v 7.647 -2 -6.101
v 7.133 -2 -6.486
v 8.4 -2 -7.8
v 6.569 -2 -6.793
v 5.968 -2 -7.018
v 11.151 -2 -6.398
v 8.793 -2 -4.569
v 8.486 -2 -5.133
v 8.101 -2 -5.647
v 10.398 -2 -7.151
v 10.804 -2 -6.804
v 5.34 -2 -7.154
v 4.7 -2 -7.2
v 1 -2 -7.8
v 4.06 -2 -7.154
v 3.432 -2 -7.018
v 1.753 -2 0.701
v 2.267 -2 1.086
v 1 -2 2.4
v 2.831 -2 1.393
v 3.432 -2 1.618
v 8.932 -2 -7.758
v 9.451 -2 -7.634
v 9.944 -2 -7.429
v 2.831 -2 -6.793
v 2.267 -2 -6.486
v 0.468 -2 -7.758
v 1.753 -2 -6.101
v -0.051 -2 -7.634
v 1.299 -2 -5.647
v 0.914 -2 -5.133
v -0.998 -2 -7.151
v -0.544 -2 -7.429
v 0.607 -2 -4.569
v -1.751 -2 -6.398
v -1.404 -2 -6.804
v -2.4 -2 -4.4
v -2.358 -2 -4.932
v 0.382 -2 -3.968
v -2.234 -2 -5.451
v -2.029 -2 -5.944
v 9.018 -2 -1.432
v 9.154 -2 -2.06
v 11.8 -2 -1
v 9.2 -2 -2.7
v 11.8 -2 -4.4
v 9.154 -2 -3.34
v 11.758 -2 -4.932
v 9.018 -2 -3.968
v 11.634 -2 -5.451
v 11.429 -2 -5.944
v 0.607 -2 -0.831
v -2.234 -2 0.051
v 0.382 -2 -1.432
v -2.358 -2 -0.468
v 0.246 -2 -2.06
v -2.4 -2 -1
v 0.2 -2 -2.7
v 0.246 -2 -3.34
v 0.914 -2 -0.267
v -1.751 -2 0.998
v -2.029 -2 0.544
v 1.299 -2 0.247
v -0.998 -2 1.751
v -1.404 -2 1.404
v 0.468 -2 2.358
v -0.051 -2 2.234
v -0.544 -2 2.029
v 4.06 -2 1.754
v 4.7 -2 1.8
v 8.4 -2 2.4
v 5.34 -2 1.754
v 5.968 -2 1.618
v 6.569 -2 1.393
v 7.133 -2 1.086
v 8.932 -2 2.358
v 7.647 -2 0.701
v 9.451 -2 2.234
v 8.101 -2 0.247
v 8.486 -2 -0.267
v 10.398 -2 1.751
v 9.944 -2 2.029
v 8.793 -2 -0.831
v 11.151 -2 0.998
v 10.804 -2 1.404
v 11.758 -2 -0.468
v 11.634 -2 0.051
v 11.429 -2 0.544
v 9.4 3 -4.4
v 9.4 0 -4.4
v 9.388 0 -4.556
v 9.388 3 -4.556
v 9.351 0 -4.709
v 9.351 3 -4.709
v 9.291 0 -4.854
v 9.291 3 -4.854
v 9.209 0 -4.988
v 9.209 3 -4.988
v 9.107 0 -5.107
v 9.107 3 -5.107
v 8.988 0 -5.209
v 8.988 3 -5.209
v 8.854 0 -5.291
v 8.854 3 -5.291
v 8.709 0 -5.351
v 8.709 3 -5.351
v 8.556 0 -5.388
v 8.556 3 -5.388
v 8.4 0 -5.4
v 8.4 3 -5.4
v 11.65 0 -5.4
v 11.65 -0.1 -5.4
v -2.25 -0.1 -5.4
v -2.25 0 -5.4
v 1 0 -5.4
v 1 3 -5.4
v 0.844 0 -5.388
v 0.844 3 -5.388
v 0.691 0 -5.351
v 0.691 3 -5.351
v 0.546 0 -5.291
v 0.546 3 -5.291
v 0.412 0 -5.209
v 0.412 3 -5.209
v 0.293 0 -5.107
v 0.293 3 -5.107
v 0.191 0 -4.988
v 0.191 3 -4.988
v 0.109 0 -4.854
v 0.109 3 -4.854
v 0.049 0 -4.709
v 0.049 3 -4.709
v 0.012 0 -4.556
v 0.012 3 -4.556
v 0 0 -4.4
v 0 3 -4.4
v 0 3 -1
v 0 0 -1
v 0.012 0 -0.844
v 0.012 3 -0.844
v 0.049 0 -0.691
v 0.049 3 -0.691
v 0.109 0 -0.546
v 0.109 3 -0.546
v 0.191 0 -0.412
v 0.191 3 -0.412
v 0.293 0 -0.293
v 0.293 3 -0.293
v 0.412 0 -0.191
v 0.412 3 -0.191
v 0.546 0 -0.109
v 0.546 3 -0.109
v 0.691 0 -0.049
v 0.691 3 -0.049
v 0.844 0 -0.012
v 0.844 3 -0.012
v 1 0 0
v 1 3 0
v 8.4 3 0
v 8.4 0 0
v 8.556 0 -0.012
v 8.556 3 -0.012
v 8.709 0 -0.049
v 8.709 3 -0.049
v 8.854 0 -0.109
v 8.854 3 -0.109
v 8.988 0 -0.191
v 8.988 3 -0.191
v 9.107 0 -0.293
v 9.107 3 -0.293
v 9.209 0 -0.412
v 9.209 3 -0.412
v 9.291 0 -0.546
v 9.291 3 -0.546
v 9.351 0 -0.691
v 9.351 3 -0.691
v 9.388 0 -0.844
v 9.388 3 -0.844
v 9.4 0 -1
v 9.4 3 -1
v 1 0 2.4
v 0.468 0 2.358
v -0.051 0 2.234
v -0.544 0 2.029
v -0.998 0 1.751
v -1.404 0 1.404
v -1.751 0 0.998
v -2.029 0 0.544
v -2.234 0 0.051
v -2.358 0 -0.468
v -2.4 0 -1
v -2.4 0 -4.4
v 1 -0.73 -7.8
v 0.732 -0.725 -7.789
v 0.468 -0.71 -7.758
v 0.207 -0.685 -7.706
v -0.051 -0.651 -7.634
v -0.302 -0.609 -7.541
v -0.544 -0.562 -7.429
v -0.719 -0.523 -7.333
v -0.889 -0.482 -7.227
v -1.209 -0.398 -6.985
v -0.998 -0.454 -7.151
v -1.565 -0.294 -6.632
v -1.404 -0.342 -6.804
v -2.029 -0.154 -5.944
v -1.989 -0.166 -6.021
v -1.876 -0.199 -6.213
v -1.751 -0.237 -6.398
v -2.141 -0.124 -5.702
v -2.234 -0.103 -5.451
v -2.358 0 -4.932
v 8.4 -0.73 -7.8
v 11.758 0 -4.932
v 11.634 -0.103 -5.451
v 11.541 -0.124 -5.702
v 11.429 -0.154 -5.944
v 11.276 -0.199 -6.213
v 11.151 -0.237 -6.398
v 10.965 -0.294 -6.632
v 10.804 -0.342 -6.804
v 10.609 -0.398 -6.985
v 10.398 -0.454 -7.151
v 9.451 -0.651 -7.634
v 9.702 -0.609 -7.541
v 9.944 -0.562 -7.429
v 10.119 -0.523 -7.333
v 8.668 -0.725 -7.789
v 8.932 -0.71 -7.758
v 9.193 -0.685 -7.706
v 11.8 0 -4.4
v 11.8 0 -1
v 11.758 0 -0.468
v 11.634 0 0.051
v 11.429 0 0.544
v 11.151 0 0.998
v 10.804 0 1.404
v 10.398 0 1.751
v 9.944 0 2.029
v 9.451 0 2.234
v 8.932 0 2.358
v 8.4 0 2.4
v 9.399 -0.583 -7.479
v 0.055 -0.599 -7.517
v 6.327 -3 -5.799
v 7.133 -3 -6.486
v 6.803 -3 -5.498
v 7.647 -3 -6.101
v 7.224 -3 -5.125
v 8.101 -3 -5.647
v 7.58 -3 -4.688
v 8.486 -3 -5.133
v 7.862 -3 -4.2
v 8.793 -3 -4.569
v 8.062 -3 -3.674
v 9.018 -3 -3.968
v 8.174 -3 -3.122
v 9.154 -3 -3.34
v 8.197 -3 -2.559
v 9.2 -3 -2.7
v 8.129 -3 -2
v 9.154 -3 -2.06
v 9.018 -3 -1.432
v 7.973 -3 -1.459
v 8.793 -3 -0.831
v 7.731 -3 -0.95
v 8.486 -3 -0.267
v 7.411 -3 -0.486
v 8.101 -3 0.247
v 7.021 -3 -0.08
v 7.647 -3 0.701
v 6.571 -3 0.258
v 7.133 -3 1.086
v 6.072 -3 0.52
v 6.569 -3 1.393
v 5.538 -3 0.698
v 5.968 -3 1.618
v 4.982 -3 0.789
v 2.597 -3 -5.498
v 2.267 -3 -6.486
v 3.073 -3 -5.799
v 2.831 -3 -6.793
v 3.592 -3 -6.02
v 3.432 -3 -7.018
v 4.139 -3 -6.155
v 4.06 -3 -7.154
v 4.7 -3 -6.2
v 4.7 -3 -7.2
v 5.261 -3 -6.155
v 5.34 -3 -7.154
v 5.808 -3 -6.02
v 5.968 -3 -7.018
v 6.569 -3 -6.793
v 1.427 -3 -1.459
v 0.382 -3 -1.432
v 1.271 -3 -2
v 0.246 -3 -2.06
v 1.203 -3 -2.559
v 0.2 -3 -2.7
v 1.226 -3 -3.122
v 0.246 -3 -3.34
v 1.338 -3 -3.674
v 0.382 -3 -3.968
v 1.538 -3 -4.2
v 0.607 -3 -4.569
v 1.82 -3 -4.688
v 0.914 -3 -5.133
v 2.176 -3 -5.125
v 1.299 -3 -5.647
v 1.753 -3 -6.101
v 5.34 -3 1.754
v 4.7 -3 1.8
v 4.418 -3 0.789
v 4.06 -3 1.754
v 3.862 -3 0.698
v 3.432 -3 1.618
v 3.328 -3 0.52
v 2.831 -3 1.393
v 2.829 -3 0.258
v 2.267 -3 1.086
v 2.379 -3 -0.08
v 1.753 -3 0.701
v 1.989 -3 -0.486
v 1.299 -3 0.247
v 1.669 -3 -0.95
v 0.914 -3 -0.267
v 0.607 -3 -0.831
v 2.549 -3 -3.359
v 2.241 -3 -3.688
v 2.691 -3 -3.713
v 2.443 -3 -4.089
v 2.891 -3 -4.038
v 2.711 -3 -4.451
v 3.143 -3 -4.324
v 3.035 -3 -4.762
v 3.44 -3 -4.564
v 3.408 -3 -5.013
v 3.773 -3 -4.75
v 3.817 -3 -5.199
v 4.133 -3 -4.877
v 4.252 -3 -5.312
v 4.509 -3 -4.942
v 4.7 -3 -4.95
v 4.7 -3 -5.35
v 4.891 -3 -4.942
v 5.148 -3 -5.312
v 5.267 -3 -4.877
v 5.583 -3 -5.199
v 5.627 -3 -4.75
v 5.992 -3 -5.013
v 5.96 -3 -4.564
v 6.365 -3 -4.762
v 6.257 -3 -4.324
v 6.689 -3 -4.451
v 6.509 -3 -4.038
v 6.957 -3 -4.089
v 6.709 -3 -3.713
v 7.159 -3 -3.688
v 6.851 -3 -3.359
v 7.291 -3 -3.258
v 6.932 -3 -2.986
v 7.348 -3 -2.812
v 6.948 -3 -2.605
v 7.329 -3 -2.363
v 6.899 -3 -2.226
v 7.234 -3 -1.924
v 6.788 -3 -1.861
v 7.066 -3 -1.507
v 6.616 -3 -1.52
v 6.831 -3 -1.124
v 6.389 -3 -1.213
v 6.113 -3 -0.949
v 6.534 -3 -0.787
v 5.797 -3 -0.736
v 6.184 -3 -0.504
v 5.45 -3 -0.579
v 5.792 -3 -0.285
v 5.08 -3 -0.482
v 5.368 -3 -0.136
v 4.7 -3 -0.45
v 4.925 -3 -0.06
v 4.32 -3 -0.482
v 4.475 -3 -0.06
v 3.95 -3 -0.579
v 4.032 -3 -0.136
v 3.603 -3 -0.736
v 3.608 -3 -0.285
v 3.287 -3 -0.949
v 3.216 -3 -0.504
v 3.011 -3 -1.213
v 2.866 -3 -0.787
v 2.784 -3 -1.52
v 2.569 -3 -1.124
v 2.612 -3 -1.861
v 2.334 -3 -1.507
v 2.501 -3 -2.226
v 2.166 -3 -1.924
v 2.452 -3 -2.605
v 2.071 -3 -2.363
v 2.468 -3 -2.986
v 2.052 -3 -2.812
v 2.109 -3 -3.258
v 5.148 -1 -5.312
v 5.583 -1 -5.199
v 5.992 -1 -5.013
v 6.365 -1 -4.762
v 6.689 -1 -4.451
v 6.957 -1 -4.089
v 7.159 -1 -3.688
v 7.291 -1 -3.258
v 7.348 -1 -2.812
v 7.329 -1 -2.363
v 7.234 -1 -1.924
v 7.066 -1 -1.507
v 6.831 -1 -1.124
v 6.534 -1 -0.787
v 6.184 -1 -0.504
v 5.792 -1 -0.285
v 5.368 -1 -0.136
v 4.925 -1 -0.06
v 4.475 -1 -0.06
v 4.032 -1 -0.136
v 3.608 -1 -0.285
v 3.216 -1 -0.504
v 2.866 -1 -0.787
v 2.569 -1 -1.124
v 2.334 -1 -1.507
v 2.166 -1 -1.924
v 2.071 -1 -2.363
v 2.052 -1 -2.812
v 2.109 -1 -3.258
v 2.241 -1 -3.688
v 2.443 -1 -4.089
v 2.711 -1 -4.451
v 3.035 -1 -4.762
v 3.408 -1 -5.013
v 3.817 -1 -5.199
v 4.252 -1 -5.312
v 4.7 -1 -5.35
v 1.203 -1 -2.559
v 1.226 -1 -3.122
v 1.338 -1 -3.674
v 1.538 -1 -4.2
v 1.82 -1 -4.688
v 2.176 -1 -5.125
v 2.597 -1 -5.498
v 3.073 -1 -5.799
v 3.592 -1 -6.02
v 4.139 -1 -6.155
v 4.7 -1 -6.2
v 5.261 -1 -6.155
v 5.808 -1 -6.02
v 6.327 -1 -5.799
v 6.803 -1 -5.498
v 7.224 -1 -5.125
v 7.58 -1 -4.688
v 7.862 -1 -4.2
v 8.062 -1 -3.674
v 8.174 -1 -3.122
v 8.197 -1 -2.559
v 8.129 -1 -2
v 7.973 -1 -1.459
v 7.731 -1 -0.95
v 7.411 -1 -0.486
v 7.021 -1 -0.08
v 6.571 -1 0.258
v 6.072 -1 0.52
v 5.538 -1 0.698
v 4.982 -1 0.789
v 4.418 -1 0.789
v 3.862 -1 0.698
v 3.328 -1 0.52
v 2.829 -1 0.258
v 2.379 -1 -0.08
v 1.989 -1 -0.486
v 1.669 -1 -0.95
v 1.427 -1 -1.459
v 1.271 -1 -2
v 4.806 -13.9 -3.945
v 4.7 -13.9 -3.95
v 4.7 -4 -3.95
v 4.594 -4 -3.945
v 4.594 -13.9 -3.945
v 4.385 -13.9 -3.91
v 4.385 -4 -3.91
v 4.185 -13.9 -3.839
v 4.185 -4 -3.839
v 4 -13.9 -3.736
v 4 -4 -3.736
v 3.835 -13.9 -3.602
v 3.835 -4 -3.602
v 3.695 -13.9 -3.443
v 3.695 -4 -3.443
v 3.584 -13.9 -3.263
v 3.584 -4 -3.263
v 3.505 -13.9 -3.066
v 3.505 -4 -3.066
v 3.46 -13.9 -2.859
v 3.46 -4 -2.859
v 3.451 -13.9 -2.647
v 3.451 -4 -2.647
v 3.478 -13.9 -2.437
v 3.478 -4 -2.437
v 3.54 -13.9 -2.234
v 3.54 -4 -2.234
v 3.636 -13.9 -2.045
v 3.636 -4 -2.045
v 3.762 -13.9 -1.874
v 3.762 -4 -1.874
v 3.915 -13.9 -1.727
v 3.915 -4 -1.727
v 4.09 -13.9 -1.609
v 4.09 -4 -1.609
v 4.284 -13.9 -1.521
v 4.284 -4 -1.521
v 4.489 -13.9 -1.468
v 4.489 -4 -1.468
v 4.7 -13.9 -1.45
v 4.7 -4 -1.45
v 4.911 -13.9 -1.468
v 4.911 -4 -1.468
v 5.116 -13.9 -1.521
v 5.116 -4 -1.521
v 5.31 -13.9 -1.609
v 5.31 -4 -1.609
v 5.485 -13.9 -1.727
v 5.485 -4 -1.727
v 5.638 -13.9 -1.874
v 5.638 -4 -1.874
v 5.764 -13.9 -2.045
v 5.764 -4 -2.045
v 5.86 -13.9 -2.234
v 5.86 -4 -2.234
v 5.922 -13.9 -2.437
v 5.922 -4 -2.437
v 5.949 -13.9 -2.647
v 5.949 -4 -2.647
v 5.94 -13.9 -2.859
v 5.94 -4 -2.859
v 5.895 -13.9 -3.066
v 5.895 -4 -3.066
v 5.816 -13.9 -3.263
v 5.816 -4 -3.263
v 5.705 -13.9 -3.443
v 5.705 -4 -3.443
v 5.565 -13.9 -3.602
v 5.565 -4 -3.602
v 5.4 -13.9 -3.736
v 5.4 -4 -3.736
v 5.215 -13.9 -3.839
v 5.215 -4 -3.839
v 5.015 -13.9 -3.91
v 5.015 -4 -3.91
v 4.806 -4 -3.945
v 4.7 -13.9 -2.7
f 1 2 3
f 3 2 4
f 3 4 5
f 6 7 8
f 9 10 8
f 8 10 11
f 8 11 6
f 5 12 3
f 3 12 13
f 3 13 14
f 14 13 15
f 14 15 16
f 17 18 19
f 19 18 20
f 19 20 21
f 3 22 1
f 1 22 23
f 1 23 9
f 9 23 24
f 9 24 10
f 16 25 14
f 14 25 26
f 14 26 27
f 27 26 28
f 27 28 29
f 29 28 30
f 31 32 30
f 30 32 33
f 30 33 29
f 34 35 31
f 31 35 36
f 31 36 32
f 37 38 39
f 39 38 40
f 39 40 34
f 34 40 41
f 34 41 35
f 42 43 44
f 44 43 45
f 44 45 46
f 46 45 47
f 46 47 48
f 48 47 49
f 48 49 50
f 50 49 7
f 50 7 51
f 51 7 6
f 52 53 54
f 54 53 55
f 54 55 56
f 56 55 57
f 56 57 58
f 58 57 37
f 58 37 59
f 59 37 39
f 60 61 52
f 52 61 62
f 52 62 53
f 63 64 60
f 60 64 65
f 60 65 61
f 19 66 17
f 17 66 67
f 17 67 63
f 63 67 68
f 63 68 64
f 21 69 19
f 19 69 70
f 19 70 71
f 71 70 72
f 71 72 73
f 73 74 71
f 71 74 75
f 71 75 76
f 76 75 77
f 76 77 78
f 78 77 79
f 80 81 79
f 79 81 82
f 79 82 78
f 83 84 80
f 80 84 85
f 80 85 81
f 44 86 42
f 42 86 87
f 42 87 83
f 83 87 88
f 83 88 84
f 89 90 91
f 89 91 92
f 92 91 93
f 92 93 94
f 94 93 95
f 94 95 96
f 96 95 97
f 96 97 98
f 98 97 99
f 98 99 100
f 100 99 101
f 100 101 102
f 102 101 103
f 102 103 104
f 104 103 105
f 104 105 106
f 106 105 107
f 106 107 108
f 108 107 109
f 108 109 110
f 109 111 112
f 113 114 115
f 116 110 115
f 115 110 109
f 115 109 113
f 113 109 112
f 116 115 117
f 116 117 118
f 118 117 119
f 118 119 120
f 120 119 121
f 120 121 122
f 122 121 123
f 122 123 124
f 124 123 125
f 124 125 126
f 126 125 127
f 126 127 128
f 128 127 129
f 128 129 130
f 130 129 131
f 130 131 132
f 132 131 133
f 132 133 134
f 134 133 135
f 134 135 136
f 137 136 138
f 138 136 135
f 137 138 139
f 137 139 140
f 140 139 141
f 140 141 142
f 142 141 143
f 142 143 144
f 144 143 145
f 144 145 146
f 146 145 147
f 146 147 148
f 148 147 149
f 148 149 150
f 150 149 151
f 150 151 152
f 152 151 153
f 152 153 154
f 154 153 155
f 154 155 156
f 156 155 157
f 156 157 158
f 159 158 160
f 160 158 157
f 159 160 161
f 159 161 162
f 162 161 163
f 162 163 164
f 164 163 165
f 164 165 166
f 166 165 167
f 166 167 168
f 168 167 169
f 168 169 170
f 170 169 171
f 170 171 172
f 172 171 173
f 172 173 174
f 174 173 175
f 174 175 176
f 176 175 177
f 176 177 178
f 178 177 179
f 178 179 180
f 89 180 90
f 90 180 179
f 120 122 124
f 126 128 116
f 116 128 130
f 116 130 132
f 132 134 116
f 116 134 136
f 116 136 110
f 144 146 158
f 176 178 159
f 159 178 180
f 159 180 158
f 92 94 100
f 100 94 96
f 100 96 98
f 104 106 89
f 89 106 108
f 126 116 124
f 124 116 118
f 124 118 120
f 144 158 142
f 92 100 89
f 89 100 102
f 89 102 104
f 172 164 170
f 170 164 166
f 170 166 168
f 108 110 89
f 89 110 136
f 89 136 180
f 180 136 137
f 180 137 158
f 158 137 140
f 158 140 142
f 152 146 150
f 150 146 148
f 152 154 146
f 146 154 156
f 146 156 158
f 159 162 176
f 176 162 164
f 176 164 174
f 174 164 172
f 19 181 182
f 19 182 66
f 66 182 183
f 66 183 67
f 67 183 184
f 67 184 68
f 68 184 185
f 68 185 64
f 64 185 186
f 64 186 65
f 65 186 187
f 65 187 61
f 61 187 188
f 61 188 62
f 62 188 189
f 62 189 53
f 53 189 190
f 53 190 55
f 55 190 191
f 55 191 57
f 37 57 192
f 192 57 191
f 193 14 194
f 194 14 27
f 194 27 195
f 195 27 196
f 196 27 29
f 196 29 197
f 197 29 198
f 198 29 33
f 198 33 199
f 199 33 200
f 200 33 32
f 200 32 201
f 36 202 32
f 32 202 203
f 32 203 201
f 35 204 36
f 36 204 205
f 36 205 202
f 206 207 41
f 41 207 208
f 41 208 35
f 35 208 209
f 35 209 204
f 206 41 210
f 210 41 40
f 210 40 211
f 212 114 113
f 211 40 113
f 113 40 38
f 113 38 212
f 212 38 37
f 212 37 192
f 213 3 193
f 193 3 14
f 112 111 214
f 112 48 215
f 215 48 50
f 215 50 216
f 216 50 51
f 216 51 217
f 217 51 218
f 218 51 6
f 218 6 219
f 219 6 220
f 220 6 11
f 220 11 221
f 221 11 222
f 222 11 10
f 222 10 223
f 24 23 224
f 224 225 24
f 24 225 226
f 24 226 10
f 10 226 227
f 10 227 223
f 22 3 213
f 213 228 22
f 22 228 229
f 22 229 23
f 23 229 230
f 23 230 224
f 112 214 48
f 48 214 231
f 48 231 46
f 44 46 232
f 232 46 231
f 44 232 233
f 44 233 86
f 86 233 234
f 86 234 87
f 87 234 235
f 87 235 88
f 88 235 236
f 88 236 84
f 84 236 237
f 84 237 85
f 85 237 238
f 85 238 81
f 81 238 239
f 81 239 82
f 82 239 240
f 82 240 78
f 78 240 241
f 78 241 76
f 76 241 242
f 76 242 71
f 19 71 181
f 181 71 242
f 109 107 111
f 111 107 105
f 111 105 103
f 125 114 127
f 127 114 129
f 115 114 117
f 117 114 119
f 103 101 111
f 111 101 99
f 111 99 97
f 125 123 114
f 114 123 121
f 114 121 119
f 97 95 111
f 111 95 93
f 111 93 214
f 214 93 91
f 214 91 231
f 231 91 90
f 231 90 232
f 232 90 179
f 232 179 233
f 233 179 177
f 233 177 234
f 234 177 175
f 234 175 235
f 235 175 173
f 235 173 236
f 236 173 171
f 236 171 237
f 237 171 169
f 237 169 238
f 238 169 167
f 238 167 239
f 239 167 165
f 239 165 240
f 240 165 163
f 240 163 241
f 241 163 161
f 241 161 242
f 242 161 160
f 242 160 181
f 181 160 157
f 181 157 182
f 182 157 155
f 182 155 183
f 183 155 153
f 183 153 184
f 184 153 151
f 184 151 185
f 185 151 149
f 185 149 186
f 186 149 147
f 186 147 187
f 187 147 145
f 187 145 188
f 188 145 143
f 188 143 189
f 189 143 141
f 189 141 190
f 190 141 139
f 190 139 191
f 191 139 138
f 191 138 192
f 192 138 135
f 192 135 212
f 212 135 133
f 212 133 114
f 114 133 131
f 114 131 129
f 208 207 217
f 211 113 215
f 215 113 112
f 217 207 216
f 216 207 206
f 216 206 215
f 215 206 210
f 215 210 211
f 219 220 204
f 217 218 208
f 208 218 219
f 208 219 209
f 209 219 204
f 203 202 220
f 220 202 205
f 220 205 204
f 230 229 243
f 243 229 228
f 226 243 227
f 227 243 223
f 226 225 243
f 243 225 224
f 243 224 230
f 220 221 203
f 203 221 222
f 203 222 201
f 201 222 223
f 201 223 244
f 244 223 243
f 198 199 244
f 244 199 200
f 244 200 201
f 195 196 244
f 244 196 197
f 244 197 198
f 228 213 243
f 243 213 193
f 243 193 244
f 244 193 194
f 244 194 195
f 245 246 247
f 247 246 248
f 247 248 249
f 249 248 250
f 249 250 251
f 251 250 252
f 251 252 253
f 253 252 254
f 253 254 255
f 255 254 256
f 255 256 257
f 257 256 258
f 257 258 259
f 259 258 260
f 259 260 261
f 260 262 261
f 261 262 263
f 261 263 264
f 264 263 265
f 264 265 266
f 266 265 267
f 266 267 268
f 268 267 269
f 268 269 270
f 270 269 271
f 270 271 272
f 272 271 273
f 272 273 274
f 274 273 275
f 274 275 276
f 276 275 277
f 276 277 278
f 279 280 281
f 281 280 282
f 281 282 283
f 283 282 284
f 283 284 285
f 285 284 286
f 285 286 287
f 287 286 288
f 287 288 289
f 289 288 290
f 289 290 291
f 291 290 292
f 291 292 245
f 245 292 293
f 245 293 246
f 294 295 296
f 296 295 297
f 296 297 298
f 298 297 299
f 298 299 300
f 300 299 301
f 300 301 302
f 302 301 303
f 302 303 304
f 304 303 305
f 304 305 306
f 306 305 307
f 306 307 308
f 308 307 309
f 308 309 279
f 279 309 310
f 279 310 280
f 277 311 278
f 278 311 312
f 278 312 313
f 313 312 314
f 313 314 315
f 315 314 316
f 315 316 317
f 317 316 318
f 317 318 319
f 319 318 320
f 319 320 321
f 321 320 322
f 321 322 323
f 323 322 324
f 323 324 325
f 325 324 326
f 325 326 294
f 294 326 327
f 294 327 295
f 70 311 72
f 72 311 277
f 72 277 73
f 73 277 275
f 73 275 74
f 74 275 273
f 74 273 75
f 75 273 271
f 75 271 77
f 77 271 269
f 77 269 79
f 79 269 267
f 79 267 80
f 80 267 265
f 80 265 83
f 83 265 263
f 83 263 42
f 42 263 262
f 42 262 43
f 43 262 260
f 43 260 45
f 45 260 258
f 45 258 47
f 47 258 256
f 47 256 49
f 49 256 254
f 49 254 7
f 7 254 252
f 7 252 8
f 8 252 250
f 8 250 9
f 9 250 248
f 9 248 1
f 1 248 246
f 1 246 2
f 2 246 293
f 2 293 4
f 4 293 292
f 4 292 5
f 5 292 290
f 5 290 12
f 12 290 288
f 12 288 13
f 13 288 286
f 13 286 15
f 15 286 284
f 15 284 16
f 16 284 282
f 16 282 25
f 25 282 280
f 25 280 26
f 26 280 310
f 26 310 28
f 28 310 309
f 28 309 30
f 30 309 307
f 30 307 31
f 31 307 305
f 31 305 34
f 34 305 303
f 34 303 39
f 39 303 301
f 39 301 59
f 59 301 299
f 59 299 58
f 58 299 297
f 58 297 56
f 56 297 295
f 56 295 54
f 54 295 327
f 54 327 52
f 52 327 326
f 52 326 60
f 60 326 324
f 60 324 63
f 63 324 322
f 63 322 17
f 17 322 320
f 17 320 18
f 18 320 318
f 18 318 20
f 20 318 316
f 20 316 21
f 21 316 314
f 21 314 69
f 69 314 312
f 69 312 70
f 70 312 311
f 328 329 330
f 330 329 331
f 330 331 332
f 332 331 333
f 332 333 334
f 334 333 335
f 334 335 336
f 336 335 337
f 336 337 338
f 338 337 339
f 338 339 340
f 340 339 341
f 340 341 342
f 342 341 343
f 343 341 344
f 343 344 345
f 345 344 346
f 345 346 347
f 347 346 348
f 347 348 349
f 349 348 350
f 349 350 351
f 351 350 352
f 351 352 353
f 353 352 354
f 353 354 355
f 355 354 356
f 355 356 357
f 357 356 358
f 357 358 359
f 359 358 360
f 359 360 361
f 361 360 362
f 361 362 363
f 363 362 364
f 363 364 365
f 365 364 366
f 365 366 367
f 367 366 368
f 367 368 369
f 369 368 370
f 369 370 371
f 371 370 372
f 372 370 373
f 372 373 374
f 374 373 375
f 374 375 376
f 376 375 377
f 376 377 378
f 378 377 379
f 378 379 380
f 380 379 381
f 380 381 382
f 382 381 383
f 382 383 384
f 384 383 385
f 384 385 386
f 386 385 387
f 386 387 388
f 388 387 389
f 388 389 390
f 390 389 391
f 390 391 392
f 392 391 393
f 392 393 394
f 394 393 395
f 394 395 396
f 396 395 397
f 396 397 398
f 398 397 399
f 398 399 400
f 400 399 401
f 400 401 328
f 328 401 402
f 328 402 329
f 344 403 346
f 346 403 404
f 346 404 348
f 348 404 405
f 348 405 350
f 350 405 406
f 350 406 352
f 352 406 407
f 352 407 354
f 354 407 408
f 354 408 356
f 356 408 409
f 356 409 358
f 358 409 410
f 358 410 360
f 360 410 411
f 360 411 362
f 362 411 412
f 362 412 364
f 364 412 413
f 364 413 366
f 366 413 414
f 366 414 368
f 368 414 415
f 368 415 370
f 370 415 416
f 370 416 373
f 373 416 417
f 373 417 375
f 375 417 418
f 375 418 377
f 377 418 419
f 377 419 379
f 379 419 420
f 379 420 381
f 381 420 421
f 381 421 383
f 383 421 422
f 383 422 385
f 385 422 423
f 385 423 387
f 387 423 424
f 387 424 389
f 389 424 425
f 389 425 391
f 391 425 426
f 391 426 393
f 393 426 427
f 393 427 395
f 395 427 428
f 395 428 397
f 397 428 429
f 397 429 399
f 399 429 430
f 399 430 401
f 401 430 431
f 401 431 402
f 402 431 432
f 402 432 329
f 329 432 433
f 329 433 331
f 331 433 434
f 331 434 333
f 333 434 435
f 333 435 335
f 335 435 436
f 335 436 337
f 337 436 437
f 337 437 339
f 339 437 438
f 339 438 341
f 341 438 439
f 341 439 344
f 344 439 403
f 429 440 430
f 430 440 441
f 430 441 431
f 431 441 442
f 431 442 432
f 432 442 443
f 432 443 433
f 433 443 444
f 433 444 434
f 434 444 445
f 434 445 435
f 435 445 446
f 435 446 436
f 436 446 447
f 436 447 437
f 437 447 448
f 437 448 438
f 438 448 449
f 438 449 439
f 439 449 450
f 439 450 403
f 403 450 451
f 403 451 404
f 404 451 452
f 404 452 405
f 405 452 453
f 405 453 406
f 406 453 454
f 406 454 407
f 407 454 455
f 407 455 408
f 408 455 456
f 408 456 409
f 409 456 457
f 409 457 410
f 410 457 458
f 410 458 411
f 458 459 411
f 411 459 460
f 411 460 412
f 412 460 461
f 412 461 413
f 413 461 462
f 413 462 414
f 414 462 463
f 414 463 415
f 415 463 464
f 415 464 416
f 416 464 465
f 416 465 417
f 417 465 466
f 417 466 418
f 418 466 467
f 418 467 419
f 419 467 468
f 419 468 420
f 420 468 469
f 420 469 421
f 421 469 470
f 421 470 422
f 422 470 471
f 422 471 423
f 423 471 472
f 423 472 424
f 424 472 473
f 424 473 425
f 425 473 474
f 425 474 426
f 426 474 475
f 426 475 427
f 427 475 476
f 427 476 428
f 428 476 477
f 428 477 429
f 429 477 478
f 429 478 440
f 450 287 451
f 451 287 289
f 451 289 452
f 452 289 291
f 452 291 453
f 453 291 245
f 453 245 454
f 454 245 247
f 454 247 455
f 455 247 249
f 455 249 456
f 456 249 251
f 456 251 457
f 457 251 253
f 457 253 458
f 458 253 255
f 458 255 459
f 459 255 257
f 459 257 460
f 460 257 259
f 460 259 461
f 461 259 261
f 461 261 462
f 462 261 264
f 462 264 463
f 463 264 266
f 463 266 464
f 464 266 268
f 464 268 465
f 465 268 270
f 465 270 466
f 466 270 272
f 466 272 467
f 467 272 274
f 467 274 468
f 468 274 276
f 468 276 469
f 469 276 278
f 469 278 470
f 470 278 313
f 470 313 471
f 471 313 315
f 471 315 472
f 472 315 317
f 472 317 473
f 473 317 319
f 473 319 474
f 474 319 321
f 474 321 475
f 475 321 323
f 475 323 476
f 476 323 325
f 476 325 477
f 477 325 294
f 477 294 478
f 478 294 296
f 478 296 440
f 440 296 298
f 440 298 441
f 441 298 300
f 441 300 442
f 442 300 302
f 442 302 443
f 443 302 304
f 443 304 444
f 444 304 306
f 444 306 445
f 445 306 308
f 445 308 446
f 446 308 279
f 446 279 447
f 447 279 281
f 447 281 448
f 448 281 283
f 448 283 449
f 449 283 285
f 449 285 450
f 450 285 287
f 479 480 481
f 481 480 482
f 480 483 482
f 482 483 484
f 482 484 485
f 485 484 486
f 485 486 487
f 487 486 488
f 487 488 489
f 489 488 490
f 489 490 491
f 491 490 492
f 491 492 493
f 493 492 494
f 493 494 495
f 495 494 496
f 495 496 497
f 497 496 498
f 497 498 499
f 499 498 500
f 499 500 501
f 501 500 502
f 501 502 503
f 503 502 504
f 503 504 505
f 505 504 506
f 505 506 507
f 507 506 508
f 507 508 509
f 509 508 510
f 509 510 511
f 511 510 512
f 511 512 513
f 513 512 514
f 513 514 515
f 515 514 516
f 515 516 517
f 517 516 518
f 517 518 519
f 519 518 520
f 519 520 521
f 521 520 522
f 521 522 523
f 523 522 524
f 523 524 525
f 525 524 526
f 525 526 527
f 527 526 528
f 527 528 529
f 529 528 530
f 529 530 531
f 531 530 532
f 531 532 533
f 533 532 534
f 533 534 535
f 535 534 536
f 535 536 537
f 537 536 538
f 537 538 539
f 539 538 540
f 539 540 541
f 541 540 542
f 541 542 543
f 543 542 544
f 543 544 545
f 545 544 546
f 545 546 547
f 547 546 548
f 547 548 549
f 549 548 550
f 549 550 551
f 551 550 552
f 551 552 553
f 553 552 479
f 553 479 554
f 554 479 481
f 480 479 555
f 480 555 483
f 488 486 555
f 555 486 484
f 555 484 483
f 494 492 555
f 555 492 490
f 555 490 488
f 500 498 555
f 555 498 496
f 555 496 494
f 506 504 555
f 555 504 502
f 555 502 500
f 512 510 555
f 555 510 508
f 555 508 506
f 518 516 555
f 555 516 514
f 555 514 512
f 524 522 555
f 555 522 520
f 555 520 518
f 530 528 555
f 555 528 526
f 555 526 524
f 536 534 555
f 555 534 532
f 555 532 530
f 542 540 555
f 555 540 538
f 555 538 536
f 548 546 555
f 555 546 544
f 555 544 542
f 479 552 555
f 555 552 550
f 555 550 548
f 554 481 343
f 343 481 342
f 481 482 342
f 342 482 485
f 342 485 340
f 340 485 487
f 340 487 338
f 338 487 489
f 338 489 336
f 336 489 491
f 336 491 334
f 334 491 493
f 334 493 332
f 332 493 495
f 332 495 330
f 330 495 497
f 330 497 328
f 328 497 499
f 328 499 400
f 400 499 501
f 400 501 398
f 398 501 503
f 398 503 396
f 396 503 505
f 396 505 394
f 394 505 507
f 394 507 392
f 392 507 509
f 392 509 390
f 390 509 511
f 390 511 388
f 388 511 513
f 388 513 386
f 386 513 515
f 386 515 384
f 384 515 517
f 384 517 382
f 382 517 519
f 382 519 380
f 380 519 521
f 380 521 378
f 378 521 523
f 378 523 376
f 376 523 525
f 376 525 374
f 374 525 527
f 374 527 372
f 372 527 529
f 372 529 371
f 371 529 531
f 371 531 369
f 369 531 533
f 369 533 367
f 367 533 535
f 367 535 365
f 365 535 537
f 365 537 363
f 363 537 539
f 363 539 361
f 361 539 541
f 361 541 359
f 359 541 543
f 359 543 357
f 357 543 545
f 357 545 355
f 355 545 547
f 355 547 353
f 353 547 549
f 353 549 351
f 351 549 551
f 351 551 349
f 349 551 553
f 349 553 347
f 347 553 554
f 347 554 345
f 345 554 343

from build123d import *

# Parameters (mm, degrees)
BOSS_EXTRUDE1_DEPTH = 3
BOSS_EXTRUDE2_DEPTH = 2
CUT_EXTRUDE1_DEPTH  = 17.476650145
SKETCH6_R           = 3.5
SKETCH6_R_2         = 2.65
CUT_EXTRUDE3_DEPTH  = 1
BOSS_EXTRUDE4_START = 1
SKETCH7_R           = 2.65
BOSS_EXTRUDE4_DEPTH = 1
BOSS_EXTRUDE5_START = 1
SKETCH8_R           = 4.5
SKETCH8_R_2         = 3.5
BOSS_EXTRUDE5_DEPTH = 1
SKETCH9_R           = 1.25
BOSS_EXTRUDE6_DEPTH = 10.9
CHAMFER2_SIZE       = 1


with BuildPart() as part:
    # Sketch1 → Boss-Extrude1 (new body)
    with BuildSketch(Plane(origin=(0, 0, 0), x_dir=(1, 0, 0), z_dir=(0, 1, 0))):
        with BuildLine():
            Line((1, 0), (8.4, 0))
            ThreePointArc((8.4, 0), (9.107106781, 0.292893219), (9.4, 1))
            Line((9.4, 1), (9.4, 4.4))
            ThreePointArc((9.4, 4.4), (9.107106781, 5.107106781), (8.4, 5.4))
            Line((8.4, 5.4), (1, 5.4))
            ThreePointArc((1, 5.4), (0.292893219, 5.107106781), (0, 4.4))
            Line((0, 4.4), (0, 1))
            ThreePointArc((0, 1), (0.292893219, 0.292893219), (1, 0))
        make_face()
    extrude(amount=BOSS_EXTRUDE1_DEPTH)

    # Sketch2 → Boss-Extrude2 (add)
    with BuildSketch(Plane.XZ):
        with BuildLine():
            Line((1, -7.8), (8.4, -7.8))
            ThreePointArc((8.4, -7.8), (10.804163056, -6.804163056), (11.8, -4.4))
            Line((11.8, -4.4), (11.8, -1))
            ThreePointArc((11.8, -1), (10.804163056, 1.404163056), (8.4, 2.4))
            Line((8.4, 2.4), (1, 2.4))
            ThreePointArc((1, 2.4), (-1.404163056, 1.404163056), (-2.4, -1))
            Line((-2.4, -1), (-2.4, -4.4))
            ThreePointArc((-2.4, -4.4), (-1.404163056, -6.804163056), (1, -7.8))
        make_face()
    extrude(amount=BOSS_EXTRUDE2_DEPTH)

    # Sketch3 → Cut-Extrude1 (cut, through all)
    with BuildSketch(Plane.ZY.offset(2.4)):
        with BuildLine():
            Line((-5.4, -0.1), (-5.4, 0.4))
            Line((-5.4, 0.4), (-7.8, 0.4))
            Line((-7.8, 0.4), (-7.8, -0.73))
            ThreePointArc((-7.8, -0.73), (-6.63183862, -0.29371002), (-5.4, -0.1))
        make_face()
    extrude(amount=-CUT_EXTRUDE1_DEPTH, mode=Mode.SUBTRACT)

    # Sketch6 → Cut-Extrude3 (cut)
    with BuildSketch(Plane.XZ.offset(2)):
        with Locations(Location((4.7, -2.7, 0), (0, 0, 270))):
            Circle(SKETCH6_R)
        with Locations(Location((4.7, -2.7, 0), (0, 0, 270))):
            Circle(SKETCH6_R_2, mode=Mode.SUBTRACT)
    extrude(amount=-CUT_EXTRUDE3_DEPTH, mode=Mode.SUBTRACT)

    # Sketch7 → Boss-Extrude4 (add)
    with BuildSketch(Plane.XZ.offset(2).offset(BOSS_EXTRUDE4_START)):
        with Locations(Location((4.7, -2.7, 0), (0, 0, 270))):
            Circle(SKETCH7_R)
    extrude(amount=-BOSS_EXTRUDE4_DEPTH)

    # Sketch8 → Boss-Extrude5 (add)
    with BuildSketch(Plane.XZ.offset(2).offset(BOSS_EXTRUDE5_START)):
        with Locations(Location((4.7, -2.7, 0), (0, 0, 270))):
            Circle(SKETCH8_R)
        with Locations(Location((4.7, -2.7, 0), (0, 0, 270))):
            Circle(SKETCH8_R_2, mode=Mode.SUBTRACT)
    extrude(amount=-BOSS_EXTRUDE5_DEPTH)

    # Sketch9 → Boss-Extrude6 (add)
    with BuildSketch(Plane.XZ.offset(3)):
        with Locations(Location((4.7, -2.7, 0), (0, 0, 270))):
            Circle(SKETCH9_R)
    extrude(amount=BOSS_EXTRUDE6_DEPTH)

    # Chamfer2
    chamfer2_edges = [part.edges().sort_by_distance(p)[0] for p in [
        (4.7, -3, -1.45),
    ]]
    chamfer(chamfer2_edges, length=CHAMFER2_SIZE)


solid = part.part
